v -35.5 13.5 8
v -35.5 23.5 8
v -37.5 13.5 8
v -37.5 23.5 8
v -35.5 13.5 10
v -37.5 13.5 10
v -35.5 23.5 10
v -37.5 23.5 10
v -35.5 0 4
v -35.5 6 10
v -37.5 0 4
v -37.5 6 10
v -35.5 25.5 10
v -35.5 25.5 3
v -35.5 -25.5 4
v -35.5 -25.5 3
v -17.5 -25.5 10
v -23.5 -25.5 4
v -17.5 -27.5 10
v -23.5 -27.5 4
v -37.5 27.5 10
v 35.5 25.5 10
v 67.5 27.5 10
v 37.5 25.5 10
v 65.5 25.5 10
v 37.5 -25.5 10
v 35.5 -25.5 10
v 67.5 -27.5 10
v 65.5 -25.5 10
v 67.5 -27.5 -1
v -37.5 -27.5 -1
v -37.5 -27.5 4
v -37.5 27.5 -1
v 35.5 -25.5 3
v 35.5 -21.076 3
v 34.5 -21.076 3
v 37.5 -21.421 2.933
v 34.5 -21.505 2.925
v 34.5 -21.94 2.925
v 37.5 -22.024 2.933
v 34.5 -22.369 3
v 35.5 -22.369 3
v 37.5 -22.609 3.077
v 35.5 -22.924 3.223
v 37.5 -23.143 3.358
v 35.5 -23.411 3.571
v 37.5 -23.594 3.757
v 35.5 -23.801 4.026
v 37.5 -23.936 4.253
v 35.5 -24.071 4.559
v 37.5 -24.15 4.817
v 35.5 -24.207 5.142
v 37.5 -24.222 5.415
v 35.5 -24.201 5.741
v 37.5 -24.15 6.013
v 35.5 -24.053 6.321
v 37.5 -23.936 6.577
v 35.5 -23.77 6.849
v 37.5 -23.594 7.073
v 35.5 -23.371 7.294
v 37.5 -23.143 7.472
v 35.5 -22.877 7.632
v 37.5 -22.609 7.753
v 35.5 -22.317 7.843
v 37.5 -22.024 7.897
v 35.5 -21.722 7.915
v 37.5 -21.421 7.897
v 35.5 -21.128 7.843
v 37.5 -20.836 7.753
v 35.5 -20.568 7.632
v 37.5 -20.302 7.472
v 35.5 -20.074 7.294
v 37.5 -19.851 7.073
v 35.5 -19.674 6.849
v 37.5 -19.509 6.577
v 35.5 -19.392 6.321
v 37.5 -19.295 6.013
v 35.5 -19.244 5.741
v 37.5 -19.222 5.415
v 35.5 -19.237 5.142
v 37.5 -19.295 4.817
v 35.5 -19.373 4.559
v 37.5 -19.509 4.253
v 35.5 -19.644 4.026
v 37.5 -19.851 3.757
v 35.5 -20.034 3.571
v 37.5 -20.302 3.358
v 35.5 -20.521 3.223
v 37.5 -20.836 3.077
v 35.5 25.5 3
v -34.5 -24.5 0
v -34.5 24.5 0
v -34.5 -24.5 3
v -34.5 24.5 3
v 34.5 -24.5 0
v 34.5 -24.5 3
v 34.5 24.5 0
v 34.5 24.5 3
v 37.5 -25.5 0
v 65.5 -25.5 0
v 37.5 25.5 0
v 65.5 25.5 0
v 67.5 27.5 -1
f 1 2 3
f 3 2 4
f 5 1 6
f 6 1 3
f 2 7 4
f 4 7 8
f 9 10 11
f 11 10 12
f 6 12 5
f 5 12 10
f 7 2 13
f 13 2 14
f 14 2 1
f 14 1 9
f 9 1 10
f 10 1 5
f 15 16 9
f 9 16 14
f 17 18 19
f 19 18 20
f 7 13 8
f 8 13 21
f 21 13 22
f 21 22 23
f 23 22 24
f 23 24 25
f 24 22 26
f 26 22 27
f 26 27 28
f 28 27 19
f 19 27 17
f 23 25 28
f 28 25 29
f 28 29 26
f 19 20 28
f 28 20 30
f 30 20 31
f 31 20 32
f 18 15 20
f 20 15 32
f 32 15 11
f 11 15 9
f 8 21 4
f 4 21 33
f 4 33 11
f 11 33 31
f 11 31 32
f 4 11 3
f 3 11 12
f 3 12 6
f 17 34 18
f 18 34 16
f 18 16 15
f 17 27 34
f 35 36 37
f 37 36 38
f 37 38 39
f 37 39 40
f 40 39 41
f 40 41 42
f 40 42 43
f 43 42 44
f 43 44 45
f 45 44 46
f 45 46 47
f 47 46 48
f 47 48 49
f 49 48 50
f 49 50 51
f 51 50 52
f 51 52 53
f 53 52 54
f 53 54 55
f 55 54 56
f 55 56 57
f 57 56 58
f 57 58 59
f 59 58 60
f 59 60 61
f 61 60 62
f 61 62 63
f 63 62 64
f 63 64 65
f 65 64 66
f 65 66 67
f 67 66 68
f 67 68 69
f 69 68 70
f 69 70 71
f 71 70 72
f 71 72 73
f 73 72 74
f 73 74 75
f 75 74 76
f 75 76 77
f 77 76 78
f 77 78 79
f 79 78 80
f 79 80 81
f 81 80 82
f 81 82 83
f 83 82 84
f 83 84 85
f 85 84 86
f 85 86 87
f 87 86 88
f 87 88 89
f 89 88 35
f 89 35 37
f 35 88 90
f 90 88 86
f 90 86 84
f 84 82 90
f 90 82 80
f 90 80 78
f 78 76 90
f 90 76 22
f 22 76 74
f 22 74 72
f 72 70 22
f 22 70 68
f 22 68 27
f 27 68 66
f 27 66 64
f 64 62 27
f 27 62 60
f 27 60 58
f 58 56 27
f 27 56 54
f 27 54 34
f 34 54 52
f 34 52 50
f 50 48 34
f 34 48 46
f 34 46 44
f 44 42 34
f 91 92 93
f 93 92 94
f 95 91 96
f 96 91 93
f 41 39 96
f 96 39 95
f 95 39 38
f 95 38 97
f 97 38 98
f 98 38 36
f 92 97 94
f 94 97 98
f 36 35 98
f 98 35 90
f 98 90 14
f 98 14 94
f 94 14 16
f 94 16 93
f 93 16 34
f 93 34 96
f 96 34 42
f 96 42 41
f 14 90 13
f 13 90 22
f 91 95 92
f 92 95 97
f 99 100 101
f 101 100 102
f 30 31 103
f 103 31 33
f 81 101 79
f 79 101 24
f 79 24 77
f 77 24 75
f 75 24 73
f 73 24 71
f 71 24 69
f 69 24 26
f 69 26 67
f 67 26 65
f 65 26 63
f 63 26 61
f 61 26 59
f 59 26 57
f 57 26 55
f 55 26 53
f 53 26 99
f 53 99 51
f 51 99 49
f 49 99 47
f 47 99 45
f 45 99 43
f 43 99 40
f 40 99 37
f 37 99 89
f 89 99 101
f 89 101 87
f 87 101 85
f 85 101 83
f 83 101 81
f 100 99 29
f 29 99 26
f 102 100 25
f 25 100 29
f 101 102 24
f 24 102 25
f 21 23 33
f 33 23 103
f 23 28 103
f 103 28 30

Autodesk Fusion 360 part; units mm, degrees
sketch "Sketch1" plane through (0, 0, 0) normal (0, 0, 1) x (1, 0, 0)
  line L0 (35.5, -25.5) -> (-35.5, -25.5)
  line L1 (-35.5, -25.5) -> (-35.5, 25.5)
  line L2 (-35.5, 25.5) -> (35.5, 25.5)
  line L3 (35.5, 25.5) -> (35.5, -25.5)
  line L4 (35.5, -25.5) -> (-35.5, 25.5) construction
  line L5 (-35.5, -25.5) -> (35.5, 25.5) construction
  line L6 (34.5, -24.5) -> (-34.5, -24.5)
  line L7 (-34.5, -24.5) -> (-34.5, 24.5)
  line L8 (-34.5, 24.5) -> (34.5, 24.5)
  line L9 (34.5, 24.5) -> (34.5, -24.5)
  line L10 (-37.5, -27.5) -> (-37.5, 27.5)
  line L11 (-37.5, 27.5) -> (37.5, 27.5)
  line L12 (37.5, 27.5) -> (37.5, -27.5)
  line L13 (37.5, -27.5) -> (-37.5, -27.5)
  line L14 (37.5, -27.5) -> (67.5, -27.5)
  line L15 (67.5, -27.5) -> (67.5, 27.5)
  line L16 (67.5, 27.5) -> (37.5, 27.5)
  line L17 (37.5, 27.5) -> (37.5, -27.5)
  line L18 (37.5, -25.5) -> (65.5, -25.5)
  line L19 (65.5, -25.5) -> (65.5, 25.5)
  line L20 (65.5, 25.5) -> (37.5, 25.5)
  dimension "d1" = 71
  dimension "d2" = 51
  dimension "d3" = 1
  dimension "d4" = -2
  dimension "d5" = 30
  dimension "d6" = 55
  dimension "d7" = -2
extrude "Extrude1" add sketch "Sketch1" along normal blind 10 contours L10 L11 L12 L13 L17 | L12 L14 L15 L16 L17 L18 L19 L20
extrude "Extrude2" add sketch "Sketch1" against normal blind 1 contours L0 L1 L2 L3 | L6 L7 L8 L9 | L10 L11 L12 L13 L17 | L12 L14 L15 L16 L17 L18 L19 L20 | L12 L17 L18 L19 L20
extrude "Extrude3" add sketch "Sketch1" along normal blind 3 contours L0 L1 L2 L3
hole "Hole1" at (37.5, -21.7224, 5.415) direction (-1, 0, 0) diameter 5 depth 5 tip angle 118
sketch "Sketch2" plane through (0, 0, 10) normal (0, 0, 1) x (-1, 0, 0)
  line L0 (35.5, -25.5) -> (-35.5, -25.5)
  line L1 (-35.5, -25.5) -> (-35.5, 25.5)
  line L2 (-35.5, 25.5) -> (35.5, 25.5)
  line L3 (35.5, 25.5) -> (35.5, -25.5)
  line L4 (-37.5, -25.5) -> (-65.5, -25.5)
  line L5 (-65.5, -25.5) -> (-65.5, 25.5)
  line L6 (-65.5, 25.5) -> (-37.5, 25.5)
  line L7 (-37.5, 25.5) -> (-37.5, -25.5)
  line L8 (37.5, 27.5) -> (-67.5, 27.5)
  line L9 (-67.5, 27.5) -> (-67.5, -27.5)
  line L10 (-67.5, -27.5) -> (37.5, -27.5)
  line L11 (37.5, -27.5) -> (37.5, 27.5)
  line L12 (37.5, 0) -> (23.5, 0)
  line L13 (23.5, 0) -> (23.5, 27.5)
  line L14 (23.5, 27.5) -> (37.5, 27.5)
  line L15 (37.5, 27.5) -> (37.5, 0)
  dimension "d17" = 14
extrude "Extrude4" cut sketch "Sketch2" against normal blind 6 contours L2 L3 L8 L11 L12 L13 L14 L15
sketch "Sketch3" plane through (0, -27.5, 0) normal (0, -1, 0) x (1, 0, 0)
  line L0 (-23.5, 4) -> (-37.5, 4)
  line L1 (-37.5, 4) -> (-37.5, -1)
  line L2 (-37.5, -1) -> (67.5, -1)
  line L3 (67.5, -1) -> (67.5, 10)
  line L4 (67.5, 10) -> (-23.5, 10)
  line L5 (-23.5, 10) -> (-23.5, 4)
  line L6 (-23.5, 4) -> (0.8403, 28.3403)
  line L7 (-23.5, 4) -> (10.9224, 4) construction
  line L8 (-17.5, 10) -> (-17.5, 4)
  line L9 (-23.5, 4) -> (-17.5, 4)
  dimension "d23" = 45
extrude "Extrude5" cut sketch "Sketch3" against normal blind 8 contours L4 L5 L6
sketch "Sketch4" plane through (-37.5, 0, 0) normal (-1, 0, 0) x (0, -1, 0)
  line L0 (27.5, 4) -> (0, 4)
  line L1 (0, 4) -> (0, 10)
  line L2 (0, 10) -> (-27.5, 10)
  line L3 (-27.5, 10) -> (-27.5, -1)
  line L4 (-27.5, -1) -> (27.5, -1)
  line L5 (27.5, -1) -> (27.5, 4)
  line L6 (-27.5, 10) -> (-23.5, 10)
  line L7 (-23.5, 10) -> (-13.5, 10)
  line L8 (0, 4) -> (-6, 10)
  line L9 (0, 4) -> (8.4853, 4) construction
  line L10 (0, 4) -> (-27.5, 4)
  line L11 (-6, 10) -> (-6, 4)
  line L12 (-13.5, 10) -> (-13.5, 8)
  line L13 (-23.5, 10) -> (-23.5, 8)
  line L14 (-23.5, 8) -> (-13.5, 8)
  dimension "d26" = 4
  dimension "d27" = 10
  dimension "d28" = 135
  dimension "d29" = 2
extrude "Extrude6" cut sketch "Sketch4" against normal blind 5.5 contours L1 L2 L8 | L2 L7 L12 L13 L14
